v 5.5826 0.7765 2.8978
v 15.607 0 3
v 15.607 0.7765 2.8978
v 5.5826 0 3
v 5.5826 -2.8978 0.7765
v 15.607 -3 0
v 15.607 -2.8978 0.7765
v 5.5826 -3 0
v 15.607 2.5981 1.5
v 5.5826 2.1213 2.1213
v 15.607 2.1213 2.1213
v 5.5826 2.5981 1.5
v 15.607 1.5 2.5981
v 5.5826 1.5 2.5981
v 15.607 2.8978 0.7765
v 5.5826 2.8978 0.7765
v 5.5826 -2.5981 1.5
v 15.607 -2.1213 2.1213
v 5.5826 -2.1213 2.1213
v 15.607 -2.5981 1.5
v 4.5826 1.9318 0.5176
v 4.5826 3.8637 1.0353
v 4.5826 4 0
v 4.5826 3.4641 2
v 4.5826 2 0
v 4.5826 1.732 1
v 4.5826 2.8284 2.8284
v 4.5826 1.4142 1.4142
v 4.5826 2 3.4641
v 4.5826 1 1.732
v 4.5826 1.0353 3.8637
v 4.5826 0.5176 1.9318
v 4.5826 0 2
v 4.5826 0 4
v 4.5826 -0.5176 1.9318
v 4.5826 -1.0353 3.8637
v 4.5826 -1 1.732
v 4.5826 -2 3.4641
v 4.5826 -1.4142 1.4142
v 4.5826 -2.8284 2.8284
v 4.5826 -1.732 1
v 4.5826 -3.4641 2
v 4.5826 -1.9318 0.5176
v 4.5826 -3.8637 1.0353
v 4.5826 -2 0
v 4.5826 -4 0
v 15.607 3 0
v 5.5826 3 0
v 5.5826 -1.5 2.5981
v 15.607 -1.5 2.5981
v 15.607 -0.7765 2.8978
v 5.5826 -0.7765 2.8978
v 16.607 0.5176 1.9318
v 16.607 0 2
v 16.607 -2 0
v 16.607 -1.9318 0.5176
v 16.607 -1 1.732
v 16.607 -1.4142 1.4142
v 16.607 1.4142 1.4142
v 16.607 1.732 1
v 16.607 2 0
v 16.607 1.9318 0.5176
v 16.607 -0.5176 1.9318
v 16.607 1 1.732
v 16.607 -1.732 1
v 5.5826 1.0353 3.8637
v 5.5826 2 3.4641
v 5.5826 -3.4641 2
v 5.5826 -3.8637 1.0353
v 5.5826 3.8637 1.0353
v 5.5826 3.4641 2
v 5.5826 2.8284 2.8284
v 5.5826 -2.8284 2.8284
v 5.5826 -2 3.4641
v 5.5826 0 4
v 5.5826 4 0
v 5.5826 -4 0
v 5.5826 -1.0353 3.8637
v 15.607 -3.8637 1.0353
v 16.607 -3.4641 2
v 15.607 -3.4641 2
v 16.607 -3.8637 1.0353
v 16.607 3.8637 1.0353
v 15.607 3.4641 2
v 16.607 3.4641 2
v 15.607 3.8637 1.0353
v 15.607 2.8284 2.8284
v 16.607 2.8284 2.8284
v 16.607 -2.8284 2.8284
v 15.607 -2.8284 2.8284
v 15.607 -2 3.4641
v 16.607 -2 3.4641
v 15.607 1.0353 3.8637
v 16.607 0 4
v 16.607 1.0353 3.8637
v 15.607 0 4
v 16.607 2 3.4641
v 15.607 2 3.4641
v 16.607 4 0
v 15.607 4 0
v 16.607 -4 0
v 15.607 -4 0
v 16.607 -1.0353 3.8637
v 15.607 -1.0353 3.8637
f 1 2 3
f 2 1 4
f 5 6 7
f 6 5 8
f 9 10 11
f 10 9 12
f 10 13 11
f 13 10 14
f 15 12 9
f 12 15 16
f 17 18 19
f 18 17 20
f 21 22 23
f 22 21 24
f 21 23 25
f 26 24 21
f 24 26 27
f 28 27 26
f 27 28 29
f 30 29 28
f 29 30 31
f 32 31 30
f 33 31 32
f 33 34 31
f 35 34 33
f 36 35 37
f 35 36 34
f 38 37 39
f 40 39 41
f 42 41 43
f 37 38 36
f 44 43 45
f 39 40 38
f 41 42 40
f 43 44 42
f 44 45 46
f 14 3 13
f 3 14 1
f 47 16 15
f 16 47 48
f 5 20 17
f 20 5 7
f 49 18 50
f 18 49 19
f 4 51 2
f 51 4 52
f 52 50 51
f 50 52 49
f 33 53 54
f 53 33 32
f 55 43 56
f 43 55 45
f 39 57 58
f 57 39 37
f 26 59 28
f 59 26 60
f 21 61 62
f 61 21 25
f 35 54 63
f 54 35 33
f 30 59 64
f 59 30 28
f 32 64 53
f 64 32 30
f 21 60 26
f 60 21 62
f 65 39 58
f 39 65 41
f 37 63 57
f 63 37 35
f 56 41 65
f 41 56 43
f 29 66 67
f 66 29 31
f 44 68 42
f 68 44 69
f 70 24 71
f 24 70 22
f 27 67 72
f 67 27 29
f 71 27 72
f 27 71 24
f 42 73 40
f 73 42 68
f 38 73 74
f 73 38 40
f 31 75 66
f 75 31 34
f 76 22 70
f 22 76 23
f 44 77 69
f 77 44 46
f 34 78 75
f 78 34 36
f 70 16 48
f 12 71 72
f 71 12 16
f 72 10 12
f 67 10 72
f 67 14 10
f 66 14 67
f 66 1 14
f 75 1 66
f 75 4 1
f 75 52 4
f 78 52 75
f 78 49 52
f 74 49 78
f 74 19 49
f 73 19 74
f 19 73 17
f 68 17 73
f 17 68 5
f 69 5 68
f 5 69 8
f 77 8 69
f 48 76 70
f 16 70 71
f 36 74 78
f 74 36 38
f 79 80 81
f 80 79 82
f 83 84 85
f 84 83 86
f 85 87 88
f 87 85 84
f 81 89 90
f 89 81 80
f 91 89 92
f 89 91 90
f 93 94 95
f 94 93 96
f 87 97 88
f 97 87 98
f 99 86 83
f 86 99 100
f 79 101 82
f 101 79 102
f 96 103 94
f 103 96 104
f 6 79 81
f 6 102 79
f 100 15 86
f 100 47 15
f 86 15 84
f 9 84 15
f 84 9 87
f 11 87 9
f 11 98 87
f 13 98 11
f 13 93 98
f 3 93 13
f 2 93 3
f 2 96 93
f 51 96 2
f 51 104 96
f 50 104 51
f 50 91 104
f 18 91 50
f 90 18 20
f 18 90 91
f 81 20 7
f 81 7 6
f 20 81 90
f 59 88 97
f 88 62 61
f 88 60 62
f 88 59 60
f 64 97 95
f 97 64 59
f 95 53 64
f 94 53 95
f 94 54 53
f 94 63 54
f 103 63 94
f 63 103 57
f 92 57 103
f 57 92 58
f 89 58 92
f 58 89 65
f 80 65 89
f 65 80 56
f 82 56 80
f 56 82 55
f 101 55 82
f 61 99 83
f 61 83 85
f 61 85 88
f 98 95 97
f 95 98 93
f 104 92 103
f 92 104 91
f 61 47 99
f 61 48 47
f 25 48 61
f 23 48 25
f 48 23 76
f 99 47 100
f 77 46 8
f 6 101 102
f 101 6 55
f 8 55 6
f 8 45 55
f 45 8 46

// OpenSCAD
// file: ../build_environments.scad
// build_environments.scad: modules to build level sections
//

module pool(diameter=10.0, wall_height=2.0, step_width=3.0, connections=[])
{
    difference() {
        union() {
        difference() {
            cylinder(h=0.5,r1=diameter+step_width,r2=diameter+step_width,$fn=48);
            translate([0,0,-0.1])
                cylinder(h=0.7,r1=diameter,r2=diameter,$fn=48);
        }
        difference() {
            cylinder(h=wall_height,r1=diameter+step_width+1.0,r2=diameter+step_width+1.0,$fn=48);
            translate([0,0,-0.1])
                cylinder(h=wall_height+0.2,r1=diameter+step_width,r2=diameter+step_width,$fn=48);
        }
        }
    
        for (c = connections)
        {
            rotate([0,90,0]) {
                angle = atan2(c[1],c[0]);
                rotate([-angle,0,0]) {
                    cylinder(h=diameter+5.0,r1=c[2],r2=c[2],$fn=48);
                }
            }
        }
    }
}

module straight(length=10.0, width=2.0, dy1=0.0, dy2=0.0, dz=0.0)
{
    dims = [0, 0, 0, 0, 0, (dz/length)];
    matrix = [
        [ 1, dims[0], dims[1], 0 ],
        [ dims[2], 1, dims[4], 0 ],
        [ dims[5], dims[3], 1, 0 ],
        [ 0, 0, 0, 1 ]
    ];
    multmatrix(matrix)
    difference() {
        translate([dy1,0,0])
        union() {
            rotate([0,90,0]) {
                difference() {
                    cylinder(h=(length-dy1-dy2),r1=width+1.0,r2=width+1.0,$fn=24);
                    translate([0,0,-0.1])
                        cylinder(h=(length-dy1-dy2+0.2),r1=width,r2=width,$fn=24);
                }
                difference() {
                    cylinder(h=1.0,r1=width+2.0,r2=width+2.0,$fn=24);
                    translate([0,0,-0.1])
                        cylinder(h=1.2,r1=width,r2=width,$fn=24);
                }
                translate([0,0,(length-dy1-dy2)-1.0]) {
                    difference() {
                        cylinder(h=1.0,r1=width+2.0,r2=width+2.0,$fn=24);
                        translate([0,0,-0.1])
                            cylinder(h=1.2,r1=width,r2=width,$fn=24);
                    }
                }
            }
        }
        translate([0,0,-(2*width+4.0)/2])
            cube([3*length,3*length,2*width+4.0],center=true);
    }
}

module curve(p0=[0,0], center=[0,0], dir=1, angle=0.0, width=2.0)
{
    radius = sqrt((p0[0]-center[0])*(p0[0]-center[0]) + (p0[1]-center[1])*(p0[1]-center[1]));
    if (dir == 0) {
        difference() {
            rotate([0,0,-90])
            difference() {
                rotate_extrude(angle = angle, convexity = 10, $fn=32)
                    translate([radius, 0, 0])
                        circle(r = width+1.0,$fn=24);
                rotate([0,0,-1.0])
                    rotate_extrude(angle = angle+2.0, convexity = 10, $fn=32)
                        translate([radius, 0, 0])
                            circle(r = width,$fn=24);
            }
            translate([0,0,-(2*width+4.0)/2])
                cube([5*radius,5*radius,2*width+4.0],center=true);
        }
    }
    else {
        difference() {
            rotate([0,0,90])
            difference() {
                rotate_extrude(angle = -angle, convexity = 10, $fn=32)
                    translate([radius, 0, 0])
                        circle(r = width+1.0,$fn=24);
                rotate([0,0,1.0])
                    rotate_extrude(angle = -angle-2.0, convexity = 10, $fn=32)
                        translate([radius, 0, 0])
                            circle(r = width,$fn=24);
            }
            translate([0,0,-(2*width+4.0)/2])
                cube([5*radius,5*radius,2*width+4.0],center=true);
        }
    }

}

// test pool
//pool(diameter=12.0000, wall_height=3.0000, step_width=3.0000, connections=[[0.0000,-26.0000,2.0000], [23.6074,0.0000,2.0000]]);

// test straight, slope
//straight(length=26.0000, width=2.0000, dy1=11.8322, dy2=6.7082, dz=0.0000);
//straight(length=29.1549, width=12.0000, dy1=0.0000, dy2=0.0000, dz=-15.0000);

// test curve
//curve(p0=[23.6074, 0.0000], center=[23.6074, 5.0000], dir=0, angle=60.1011, width=2.0000);
//curve(p0=[33.6426, 12.4219], center=[37.9771, 9.9295], dir=1, angle=120.4627, width=2.0000);
// main file
use <../build_environments.scad>;
straight(length=21.1896, width=2.0000, dy1=4.5826, dy2=4.5826, dz=0.0000);
